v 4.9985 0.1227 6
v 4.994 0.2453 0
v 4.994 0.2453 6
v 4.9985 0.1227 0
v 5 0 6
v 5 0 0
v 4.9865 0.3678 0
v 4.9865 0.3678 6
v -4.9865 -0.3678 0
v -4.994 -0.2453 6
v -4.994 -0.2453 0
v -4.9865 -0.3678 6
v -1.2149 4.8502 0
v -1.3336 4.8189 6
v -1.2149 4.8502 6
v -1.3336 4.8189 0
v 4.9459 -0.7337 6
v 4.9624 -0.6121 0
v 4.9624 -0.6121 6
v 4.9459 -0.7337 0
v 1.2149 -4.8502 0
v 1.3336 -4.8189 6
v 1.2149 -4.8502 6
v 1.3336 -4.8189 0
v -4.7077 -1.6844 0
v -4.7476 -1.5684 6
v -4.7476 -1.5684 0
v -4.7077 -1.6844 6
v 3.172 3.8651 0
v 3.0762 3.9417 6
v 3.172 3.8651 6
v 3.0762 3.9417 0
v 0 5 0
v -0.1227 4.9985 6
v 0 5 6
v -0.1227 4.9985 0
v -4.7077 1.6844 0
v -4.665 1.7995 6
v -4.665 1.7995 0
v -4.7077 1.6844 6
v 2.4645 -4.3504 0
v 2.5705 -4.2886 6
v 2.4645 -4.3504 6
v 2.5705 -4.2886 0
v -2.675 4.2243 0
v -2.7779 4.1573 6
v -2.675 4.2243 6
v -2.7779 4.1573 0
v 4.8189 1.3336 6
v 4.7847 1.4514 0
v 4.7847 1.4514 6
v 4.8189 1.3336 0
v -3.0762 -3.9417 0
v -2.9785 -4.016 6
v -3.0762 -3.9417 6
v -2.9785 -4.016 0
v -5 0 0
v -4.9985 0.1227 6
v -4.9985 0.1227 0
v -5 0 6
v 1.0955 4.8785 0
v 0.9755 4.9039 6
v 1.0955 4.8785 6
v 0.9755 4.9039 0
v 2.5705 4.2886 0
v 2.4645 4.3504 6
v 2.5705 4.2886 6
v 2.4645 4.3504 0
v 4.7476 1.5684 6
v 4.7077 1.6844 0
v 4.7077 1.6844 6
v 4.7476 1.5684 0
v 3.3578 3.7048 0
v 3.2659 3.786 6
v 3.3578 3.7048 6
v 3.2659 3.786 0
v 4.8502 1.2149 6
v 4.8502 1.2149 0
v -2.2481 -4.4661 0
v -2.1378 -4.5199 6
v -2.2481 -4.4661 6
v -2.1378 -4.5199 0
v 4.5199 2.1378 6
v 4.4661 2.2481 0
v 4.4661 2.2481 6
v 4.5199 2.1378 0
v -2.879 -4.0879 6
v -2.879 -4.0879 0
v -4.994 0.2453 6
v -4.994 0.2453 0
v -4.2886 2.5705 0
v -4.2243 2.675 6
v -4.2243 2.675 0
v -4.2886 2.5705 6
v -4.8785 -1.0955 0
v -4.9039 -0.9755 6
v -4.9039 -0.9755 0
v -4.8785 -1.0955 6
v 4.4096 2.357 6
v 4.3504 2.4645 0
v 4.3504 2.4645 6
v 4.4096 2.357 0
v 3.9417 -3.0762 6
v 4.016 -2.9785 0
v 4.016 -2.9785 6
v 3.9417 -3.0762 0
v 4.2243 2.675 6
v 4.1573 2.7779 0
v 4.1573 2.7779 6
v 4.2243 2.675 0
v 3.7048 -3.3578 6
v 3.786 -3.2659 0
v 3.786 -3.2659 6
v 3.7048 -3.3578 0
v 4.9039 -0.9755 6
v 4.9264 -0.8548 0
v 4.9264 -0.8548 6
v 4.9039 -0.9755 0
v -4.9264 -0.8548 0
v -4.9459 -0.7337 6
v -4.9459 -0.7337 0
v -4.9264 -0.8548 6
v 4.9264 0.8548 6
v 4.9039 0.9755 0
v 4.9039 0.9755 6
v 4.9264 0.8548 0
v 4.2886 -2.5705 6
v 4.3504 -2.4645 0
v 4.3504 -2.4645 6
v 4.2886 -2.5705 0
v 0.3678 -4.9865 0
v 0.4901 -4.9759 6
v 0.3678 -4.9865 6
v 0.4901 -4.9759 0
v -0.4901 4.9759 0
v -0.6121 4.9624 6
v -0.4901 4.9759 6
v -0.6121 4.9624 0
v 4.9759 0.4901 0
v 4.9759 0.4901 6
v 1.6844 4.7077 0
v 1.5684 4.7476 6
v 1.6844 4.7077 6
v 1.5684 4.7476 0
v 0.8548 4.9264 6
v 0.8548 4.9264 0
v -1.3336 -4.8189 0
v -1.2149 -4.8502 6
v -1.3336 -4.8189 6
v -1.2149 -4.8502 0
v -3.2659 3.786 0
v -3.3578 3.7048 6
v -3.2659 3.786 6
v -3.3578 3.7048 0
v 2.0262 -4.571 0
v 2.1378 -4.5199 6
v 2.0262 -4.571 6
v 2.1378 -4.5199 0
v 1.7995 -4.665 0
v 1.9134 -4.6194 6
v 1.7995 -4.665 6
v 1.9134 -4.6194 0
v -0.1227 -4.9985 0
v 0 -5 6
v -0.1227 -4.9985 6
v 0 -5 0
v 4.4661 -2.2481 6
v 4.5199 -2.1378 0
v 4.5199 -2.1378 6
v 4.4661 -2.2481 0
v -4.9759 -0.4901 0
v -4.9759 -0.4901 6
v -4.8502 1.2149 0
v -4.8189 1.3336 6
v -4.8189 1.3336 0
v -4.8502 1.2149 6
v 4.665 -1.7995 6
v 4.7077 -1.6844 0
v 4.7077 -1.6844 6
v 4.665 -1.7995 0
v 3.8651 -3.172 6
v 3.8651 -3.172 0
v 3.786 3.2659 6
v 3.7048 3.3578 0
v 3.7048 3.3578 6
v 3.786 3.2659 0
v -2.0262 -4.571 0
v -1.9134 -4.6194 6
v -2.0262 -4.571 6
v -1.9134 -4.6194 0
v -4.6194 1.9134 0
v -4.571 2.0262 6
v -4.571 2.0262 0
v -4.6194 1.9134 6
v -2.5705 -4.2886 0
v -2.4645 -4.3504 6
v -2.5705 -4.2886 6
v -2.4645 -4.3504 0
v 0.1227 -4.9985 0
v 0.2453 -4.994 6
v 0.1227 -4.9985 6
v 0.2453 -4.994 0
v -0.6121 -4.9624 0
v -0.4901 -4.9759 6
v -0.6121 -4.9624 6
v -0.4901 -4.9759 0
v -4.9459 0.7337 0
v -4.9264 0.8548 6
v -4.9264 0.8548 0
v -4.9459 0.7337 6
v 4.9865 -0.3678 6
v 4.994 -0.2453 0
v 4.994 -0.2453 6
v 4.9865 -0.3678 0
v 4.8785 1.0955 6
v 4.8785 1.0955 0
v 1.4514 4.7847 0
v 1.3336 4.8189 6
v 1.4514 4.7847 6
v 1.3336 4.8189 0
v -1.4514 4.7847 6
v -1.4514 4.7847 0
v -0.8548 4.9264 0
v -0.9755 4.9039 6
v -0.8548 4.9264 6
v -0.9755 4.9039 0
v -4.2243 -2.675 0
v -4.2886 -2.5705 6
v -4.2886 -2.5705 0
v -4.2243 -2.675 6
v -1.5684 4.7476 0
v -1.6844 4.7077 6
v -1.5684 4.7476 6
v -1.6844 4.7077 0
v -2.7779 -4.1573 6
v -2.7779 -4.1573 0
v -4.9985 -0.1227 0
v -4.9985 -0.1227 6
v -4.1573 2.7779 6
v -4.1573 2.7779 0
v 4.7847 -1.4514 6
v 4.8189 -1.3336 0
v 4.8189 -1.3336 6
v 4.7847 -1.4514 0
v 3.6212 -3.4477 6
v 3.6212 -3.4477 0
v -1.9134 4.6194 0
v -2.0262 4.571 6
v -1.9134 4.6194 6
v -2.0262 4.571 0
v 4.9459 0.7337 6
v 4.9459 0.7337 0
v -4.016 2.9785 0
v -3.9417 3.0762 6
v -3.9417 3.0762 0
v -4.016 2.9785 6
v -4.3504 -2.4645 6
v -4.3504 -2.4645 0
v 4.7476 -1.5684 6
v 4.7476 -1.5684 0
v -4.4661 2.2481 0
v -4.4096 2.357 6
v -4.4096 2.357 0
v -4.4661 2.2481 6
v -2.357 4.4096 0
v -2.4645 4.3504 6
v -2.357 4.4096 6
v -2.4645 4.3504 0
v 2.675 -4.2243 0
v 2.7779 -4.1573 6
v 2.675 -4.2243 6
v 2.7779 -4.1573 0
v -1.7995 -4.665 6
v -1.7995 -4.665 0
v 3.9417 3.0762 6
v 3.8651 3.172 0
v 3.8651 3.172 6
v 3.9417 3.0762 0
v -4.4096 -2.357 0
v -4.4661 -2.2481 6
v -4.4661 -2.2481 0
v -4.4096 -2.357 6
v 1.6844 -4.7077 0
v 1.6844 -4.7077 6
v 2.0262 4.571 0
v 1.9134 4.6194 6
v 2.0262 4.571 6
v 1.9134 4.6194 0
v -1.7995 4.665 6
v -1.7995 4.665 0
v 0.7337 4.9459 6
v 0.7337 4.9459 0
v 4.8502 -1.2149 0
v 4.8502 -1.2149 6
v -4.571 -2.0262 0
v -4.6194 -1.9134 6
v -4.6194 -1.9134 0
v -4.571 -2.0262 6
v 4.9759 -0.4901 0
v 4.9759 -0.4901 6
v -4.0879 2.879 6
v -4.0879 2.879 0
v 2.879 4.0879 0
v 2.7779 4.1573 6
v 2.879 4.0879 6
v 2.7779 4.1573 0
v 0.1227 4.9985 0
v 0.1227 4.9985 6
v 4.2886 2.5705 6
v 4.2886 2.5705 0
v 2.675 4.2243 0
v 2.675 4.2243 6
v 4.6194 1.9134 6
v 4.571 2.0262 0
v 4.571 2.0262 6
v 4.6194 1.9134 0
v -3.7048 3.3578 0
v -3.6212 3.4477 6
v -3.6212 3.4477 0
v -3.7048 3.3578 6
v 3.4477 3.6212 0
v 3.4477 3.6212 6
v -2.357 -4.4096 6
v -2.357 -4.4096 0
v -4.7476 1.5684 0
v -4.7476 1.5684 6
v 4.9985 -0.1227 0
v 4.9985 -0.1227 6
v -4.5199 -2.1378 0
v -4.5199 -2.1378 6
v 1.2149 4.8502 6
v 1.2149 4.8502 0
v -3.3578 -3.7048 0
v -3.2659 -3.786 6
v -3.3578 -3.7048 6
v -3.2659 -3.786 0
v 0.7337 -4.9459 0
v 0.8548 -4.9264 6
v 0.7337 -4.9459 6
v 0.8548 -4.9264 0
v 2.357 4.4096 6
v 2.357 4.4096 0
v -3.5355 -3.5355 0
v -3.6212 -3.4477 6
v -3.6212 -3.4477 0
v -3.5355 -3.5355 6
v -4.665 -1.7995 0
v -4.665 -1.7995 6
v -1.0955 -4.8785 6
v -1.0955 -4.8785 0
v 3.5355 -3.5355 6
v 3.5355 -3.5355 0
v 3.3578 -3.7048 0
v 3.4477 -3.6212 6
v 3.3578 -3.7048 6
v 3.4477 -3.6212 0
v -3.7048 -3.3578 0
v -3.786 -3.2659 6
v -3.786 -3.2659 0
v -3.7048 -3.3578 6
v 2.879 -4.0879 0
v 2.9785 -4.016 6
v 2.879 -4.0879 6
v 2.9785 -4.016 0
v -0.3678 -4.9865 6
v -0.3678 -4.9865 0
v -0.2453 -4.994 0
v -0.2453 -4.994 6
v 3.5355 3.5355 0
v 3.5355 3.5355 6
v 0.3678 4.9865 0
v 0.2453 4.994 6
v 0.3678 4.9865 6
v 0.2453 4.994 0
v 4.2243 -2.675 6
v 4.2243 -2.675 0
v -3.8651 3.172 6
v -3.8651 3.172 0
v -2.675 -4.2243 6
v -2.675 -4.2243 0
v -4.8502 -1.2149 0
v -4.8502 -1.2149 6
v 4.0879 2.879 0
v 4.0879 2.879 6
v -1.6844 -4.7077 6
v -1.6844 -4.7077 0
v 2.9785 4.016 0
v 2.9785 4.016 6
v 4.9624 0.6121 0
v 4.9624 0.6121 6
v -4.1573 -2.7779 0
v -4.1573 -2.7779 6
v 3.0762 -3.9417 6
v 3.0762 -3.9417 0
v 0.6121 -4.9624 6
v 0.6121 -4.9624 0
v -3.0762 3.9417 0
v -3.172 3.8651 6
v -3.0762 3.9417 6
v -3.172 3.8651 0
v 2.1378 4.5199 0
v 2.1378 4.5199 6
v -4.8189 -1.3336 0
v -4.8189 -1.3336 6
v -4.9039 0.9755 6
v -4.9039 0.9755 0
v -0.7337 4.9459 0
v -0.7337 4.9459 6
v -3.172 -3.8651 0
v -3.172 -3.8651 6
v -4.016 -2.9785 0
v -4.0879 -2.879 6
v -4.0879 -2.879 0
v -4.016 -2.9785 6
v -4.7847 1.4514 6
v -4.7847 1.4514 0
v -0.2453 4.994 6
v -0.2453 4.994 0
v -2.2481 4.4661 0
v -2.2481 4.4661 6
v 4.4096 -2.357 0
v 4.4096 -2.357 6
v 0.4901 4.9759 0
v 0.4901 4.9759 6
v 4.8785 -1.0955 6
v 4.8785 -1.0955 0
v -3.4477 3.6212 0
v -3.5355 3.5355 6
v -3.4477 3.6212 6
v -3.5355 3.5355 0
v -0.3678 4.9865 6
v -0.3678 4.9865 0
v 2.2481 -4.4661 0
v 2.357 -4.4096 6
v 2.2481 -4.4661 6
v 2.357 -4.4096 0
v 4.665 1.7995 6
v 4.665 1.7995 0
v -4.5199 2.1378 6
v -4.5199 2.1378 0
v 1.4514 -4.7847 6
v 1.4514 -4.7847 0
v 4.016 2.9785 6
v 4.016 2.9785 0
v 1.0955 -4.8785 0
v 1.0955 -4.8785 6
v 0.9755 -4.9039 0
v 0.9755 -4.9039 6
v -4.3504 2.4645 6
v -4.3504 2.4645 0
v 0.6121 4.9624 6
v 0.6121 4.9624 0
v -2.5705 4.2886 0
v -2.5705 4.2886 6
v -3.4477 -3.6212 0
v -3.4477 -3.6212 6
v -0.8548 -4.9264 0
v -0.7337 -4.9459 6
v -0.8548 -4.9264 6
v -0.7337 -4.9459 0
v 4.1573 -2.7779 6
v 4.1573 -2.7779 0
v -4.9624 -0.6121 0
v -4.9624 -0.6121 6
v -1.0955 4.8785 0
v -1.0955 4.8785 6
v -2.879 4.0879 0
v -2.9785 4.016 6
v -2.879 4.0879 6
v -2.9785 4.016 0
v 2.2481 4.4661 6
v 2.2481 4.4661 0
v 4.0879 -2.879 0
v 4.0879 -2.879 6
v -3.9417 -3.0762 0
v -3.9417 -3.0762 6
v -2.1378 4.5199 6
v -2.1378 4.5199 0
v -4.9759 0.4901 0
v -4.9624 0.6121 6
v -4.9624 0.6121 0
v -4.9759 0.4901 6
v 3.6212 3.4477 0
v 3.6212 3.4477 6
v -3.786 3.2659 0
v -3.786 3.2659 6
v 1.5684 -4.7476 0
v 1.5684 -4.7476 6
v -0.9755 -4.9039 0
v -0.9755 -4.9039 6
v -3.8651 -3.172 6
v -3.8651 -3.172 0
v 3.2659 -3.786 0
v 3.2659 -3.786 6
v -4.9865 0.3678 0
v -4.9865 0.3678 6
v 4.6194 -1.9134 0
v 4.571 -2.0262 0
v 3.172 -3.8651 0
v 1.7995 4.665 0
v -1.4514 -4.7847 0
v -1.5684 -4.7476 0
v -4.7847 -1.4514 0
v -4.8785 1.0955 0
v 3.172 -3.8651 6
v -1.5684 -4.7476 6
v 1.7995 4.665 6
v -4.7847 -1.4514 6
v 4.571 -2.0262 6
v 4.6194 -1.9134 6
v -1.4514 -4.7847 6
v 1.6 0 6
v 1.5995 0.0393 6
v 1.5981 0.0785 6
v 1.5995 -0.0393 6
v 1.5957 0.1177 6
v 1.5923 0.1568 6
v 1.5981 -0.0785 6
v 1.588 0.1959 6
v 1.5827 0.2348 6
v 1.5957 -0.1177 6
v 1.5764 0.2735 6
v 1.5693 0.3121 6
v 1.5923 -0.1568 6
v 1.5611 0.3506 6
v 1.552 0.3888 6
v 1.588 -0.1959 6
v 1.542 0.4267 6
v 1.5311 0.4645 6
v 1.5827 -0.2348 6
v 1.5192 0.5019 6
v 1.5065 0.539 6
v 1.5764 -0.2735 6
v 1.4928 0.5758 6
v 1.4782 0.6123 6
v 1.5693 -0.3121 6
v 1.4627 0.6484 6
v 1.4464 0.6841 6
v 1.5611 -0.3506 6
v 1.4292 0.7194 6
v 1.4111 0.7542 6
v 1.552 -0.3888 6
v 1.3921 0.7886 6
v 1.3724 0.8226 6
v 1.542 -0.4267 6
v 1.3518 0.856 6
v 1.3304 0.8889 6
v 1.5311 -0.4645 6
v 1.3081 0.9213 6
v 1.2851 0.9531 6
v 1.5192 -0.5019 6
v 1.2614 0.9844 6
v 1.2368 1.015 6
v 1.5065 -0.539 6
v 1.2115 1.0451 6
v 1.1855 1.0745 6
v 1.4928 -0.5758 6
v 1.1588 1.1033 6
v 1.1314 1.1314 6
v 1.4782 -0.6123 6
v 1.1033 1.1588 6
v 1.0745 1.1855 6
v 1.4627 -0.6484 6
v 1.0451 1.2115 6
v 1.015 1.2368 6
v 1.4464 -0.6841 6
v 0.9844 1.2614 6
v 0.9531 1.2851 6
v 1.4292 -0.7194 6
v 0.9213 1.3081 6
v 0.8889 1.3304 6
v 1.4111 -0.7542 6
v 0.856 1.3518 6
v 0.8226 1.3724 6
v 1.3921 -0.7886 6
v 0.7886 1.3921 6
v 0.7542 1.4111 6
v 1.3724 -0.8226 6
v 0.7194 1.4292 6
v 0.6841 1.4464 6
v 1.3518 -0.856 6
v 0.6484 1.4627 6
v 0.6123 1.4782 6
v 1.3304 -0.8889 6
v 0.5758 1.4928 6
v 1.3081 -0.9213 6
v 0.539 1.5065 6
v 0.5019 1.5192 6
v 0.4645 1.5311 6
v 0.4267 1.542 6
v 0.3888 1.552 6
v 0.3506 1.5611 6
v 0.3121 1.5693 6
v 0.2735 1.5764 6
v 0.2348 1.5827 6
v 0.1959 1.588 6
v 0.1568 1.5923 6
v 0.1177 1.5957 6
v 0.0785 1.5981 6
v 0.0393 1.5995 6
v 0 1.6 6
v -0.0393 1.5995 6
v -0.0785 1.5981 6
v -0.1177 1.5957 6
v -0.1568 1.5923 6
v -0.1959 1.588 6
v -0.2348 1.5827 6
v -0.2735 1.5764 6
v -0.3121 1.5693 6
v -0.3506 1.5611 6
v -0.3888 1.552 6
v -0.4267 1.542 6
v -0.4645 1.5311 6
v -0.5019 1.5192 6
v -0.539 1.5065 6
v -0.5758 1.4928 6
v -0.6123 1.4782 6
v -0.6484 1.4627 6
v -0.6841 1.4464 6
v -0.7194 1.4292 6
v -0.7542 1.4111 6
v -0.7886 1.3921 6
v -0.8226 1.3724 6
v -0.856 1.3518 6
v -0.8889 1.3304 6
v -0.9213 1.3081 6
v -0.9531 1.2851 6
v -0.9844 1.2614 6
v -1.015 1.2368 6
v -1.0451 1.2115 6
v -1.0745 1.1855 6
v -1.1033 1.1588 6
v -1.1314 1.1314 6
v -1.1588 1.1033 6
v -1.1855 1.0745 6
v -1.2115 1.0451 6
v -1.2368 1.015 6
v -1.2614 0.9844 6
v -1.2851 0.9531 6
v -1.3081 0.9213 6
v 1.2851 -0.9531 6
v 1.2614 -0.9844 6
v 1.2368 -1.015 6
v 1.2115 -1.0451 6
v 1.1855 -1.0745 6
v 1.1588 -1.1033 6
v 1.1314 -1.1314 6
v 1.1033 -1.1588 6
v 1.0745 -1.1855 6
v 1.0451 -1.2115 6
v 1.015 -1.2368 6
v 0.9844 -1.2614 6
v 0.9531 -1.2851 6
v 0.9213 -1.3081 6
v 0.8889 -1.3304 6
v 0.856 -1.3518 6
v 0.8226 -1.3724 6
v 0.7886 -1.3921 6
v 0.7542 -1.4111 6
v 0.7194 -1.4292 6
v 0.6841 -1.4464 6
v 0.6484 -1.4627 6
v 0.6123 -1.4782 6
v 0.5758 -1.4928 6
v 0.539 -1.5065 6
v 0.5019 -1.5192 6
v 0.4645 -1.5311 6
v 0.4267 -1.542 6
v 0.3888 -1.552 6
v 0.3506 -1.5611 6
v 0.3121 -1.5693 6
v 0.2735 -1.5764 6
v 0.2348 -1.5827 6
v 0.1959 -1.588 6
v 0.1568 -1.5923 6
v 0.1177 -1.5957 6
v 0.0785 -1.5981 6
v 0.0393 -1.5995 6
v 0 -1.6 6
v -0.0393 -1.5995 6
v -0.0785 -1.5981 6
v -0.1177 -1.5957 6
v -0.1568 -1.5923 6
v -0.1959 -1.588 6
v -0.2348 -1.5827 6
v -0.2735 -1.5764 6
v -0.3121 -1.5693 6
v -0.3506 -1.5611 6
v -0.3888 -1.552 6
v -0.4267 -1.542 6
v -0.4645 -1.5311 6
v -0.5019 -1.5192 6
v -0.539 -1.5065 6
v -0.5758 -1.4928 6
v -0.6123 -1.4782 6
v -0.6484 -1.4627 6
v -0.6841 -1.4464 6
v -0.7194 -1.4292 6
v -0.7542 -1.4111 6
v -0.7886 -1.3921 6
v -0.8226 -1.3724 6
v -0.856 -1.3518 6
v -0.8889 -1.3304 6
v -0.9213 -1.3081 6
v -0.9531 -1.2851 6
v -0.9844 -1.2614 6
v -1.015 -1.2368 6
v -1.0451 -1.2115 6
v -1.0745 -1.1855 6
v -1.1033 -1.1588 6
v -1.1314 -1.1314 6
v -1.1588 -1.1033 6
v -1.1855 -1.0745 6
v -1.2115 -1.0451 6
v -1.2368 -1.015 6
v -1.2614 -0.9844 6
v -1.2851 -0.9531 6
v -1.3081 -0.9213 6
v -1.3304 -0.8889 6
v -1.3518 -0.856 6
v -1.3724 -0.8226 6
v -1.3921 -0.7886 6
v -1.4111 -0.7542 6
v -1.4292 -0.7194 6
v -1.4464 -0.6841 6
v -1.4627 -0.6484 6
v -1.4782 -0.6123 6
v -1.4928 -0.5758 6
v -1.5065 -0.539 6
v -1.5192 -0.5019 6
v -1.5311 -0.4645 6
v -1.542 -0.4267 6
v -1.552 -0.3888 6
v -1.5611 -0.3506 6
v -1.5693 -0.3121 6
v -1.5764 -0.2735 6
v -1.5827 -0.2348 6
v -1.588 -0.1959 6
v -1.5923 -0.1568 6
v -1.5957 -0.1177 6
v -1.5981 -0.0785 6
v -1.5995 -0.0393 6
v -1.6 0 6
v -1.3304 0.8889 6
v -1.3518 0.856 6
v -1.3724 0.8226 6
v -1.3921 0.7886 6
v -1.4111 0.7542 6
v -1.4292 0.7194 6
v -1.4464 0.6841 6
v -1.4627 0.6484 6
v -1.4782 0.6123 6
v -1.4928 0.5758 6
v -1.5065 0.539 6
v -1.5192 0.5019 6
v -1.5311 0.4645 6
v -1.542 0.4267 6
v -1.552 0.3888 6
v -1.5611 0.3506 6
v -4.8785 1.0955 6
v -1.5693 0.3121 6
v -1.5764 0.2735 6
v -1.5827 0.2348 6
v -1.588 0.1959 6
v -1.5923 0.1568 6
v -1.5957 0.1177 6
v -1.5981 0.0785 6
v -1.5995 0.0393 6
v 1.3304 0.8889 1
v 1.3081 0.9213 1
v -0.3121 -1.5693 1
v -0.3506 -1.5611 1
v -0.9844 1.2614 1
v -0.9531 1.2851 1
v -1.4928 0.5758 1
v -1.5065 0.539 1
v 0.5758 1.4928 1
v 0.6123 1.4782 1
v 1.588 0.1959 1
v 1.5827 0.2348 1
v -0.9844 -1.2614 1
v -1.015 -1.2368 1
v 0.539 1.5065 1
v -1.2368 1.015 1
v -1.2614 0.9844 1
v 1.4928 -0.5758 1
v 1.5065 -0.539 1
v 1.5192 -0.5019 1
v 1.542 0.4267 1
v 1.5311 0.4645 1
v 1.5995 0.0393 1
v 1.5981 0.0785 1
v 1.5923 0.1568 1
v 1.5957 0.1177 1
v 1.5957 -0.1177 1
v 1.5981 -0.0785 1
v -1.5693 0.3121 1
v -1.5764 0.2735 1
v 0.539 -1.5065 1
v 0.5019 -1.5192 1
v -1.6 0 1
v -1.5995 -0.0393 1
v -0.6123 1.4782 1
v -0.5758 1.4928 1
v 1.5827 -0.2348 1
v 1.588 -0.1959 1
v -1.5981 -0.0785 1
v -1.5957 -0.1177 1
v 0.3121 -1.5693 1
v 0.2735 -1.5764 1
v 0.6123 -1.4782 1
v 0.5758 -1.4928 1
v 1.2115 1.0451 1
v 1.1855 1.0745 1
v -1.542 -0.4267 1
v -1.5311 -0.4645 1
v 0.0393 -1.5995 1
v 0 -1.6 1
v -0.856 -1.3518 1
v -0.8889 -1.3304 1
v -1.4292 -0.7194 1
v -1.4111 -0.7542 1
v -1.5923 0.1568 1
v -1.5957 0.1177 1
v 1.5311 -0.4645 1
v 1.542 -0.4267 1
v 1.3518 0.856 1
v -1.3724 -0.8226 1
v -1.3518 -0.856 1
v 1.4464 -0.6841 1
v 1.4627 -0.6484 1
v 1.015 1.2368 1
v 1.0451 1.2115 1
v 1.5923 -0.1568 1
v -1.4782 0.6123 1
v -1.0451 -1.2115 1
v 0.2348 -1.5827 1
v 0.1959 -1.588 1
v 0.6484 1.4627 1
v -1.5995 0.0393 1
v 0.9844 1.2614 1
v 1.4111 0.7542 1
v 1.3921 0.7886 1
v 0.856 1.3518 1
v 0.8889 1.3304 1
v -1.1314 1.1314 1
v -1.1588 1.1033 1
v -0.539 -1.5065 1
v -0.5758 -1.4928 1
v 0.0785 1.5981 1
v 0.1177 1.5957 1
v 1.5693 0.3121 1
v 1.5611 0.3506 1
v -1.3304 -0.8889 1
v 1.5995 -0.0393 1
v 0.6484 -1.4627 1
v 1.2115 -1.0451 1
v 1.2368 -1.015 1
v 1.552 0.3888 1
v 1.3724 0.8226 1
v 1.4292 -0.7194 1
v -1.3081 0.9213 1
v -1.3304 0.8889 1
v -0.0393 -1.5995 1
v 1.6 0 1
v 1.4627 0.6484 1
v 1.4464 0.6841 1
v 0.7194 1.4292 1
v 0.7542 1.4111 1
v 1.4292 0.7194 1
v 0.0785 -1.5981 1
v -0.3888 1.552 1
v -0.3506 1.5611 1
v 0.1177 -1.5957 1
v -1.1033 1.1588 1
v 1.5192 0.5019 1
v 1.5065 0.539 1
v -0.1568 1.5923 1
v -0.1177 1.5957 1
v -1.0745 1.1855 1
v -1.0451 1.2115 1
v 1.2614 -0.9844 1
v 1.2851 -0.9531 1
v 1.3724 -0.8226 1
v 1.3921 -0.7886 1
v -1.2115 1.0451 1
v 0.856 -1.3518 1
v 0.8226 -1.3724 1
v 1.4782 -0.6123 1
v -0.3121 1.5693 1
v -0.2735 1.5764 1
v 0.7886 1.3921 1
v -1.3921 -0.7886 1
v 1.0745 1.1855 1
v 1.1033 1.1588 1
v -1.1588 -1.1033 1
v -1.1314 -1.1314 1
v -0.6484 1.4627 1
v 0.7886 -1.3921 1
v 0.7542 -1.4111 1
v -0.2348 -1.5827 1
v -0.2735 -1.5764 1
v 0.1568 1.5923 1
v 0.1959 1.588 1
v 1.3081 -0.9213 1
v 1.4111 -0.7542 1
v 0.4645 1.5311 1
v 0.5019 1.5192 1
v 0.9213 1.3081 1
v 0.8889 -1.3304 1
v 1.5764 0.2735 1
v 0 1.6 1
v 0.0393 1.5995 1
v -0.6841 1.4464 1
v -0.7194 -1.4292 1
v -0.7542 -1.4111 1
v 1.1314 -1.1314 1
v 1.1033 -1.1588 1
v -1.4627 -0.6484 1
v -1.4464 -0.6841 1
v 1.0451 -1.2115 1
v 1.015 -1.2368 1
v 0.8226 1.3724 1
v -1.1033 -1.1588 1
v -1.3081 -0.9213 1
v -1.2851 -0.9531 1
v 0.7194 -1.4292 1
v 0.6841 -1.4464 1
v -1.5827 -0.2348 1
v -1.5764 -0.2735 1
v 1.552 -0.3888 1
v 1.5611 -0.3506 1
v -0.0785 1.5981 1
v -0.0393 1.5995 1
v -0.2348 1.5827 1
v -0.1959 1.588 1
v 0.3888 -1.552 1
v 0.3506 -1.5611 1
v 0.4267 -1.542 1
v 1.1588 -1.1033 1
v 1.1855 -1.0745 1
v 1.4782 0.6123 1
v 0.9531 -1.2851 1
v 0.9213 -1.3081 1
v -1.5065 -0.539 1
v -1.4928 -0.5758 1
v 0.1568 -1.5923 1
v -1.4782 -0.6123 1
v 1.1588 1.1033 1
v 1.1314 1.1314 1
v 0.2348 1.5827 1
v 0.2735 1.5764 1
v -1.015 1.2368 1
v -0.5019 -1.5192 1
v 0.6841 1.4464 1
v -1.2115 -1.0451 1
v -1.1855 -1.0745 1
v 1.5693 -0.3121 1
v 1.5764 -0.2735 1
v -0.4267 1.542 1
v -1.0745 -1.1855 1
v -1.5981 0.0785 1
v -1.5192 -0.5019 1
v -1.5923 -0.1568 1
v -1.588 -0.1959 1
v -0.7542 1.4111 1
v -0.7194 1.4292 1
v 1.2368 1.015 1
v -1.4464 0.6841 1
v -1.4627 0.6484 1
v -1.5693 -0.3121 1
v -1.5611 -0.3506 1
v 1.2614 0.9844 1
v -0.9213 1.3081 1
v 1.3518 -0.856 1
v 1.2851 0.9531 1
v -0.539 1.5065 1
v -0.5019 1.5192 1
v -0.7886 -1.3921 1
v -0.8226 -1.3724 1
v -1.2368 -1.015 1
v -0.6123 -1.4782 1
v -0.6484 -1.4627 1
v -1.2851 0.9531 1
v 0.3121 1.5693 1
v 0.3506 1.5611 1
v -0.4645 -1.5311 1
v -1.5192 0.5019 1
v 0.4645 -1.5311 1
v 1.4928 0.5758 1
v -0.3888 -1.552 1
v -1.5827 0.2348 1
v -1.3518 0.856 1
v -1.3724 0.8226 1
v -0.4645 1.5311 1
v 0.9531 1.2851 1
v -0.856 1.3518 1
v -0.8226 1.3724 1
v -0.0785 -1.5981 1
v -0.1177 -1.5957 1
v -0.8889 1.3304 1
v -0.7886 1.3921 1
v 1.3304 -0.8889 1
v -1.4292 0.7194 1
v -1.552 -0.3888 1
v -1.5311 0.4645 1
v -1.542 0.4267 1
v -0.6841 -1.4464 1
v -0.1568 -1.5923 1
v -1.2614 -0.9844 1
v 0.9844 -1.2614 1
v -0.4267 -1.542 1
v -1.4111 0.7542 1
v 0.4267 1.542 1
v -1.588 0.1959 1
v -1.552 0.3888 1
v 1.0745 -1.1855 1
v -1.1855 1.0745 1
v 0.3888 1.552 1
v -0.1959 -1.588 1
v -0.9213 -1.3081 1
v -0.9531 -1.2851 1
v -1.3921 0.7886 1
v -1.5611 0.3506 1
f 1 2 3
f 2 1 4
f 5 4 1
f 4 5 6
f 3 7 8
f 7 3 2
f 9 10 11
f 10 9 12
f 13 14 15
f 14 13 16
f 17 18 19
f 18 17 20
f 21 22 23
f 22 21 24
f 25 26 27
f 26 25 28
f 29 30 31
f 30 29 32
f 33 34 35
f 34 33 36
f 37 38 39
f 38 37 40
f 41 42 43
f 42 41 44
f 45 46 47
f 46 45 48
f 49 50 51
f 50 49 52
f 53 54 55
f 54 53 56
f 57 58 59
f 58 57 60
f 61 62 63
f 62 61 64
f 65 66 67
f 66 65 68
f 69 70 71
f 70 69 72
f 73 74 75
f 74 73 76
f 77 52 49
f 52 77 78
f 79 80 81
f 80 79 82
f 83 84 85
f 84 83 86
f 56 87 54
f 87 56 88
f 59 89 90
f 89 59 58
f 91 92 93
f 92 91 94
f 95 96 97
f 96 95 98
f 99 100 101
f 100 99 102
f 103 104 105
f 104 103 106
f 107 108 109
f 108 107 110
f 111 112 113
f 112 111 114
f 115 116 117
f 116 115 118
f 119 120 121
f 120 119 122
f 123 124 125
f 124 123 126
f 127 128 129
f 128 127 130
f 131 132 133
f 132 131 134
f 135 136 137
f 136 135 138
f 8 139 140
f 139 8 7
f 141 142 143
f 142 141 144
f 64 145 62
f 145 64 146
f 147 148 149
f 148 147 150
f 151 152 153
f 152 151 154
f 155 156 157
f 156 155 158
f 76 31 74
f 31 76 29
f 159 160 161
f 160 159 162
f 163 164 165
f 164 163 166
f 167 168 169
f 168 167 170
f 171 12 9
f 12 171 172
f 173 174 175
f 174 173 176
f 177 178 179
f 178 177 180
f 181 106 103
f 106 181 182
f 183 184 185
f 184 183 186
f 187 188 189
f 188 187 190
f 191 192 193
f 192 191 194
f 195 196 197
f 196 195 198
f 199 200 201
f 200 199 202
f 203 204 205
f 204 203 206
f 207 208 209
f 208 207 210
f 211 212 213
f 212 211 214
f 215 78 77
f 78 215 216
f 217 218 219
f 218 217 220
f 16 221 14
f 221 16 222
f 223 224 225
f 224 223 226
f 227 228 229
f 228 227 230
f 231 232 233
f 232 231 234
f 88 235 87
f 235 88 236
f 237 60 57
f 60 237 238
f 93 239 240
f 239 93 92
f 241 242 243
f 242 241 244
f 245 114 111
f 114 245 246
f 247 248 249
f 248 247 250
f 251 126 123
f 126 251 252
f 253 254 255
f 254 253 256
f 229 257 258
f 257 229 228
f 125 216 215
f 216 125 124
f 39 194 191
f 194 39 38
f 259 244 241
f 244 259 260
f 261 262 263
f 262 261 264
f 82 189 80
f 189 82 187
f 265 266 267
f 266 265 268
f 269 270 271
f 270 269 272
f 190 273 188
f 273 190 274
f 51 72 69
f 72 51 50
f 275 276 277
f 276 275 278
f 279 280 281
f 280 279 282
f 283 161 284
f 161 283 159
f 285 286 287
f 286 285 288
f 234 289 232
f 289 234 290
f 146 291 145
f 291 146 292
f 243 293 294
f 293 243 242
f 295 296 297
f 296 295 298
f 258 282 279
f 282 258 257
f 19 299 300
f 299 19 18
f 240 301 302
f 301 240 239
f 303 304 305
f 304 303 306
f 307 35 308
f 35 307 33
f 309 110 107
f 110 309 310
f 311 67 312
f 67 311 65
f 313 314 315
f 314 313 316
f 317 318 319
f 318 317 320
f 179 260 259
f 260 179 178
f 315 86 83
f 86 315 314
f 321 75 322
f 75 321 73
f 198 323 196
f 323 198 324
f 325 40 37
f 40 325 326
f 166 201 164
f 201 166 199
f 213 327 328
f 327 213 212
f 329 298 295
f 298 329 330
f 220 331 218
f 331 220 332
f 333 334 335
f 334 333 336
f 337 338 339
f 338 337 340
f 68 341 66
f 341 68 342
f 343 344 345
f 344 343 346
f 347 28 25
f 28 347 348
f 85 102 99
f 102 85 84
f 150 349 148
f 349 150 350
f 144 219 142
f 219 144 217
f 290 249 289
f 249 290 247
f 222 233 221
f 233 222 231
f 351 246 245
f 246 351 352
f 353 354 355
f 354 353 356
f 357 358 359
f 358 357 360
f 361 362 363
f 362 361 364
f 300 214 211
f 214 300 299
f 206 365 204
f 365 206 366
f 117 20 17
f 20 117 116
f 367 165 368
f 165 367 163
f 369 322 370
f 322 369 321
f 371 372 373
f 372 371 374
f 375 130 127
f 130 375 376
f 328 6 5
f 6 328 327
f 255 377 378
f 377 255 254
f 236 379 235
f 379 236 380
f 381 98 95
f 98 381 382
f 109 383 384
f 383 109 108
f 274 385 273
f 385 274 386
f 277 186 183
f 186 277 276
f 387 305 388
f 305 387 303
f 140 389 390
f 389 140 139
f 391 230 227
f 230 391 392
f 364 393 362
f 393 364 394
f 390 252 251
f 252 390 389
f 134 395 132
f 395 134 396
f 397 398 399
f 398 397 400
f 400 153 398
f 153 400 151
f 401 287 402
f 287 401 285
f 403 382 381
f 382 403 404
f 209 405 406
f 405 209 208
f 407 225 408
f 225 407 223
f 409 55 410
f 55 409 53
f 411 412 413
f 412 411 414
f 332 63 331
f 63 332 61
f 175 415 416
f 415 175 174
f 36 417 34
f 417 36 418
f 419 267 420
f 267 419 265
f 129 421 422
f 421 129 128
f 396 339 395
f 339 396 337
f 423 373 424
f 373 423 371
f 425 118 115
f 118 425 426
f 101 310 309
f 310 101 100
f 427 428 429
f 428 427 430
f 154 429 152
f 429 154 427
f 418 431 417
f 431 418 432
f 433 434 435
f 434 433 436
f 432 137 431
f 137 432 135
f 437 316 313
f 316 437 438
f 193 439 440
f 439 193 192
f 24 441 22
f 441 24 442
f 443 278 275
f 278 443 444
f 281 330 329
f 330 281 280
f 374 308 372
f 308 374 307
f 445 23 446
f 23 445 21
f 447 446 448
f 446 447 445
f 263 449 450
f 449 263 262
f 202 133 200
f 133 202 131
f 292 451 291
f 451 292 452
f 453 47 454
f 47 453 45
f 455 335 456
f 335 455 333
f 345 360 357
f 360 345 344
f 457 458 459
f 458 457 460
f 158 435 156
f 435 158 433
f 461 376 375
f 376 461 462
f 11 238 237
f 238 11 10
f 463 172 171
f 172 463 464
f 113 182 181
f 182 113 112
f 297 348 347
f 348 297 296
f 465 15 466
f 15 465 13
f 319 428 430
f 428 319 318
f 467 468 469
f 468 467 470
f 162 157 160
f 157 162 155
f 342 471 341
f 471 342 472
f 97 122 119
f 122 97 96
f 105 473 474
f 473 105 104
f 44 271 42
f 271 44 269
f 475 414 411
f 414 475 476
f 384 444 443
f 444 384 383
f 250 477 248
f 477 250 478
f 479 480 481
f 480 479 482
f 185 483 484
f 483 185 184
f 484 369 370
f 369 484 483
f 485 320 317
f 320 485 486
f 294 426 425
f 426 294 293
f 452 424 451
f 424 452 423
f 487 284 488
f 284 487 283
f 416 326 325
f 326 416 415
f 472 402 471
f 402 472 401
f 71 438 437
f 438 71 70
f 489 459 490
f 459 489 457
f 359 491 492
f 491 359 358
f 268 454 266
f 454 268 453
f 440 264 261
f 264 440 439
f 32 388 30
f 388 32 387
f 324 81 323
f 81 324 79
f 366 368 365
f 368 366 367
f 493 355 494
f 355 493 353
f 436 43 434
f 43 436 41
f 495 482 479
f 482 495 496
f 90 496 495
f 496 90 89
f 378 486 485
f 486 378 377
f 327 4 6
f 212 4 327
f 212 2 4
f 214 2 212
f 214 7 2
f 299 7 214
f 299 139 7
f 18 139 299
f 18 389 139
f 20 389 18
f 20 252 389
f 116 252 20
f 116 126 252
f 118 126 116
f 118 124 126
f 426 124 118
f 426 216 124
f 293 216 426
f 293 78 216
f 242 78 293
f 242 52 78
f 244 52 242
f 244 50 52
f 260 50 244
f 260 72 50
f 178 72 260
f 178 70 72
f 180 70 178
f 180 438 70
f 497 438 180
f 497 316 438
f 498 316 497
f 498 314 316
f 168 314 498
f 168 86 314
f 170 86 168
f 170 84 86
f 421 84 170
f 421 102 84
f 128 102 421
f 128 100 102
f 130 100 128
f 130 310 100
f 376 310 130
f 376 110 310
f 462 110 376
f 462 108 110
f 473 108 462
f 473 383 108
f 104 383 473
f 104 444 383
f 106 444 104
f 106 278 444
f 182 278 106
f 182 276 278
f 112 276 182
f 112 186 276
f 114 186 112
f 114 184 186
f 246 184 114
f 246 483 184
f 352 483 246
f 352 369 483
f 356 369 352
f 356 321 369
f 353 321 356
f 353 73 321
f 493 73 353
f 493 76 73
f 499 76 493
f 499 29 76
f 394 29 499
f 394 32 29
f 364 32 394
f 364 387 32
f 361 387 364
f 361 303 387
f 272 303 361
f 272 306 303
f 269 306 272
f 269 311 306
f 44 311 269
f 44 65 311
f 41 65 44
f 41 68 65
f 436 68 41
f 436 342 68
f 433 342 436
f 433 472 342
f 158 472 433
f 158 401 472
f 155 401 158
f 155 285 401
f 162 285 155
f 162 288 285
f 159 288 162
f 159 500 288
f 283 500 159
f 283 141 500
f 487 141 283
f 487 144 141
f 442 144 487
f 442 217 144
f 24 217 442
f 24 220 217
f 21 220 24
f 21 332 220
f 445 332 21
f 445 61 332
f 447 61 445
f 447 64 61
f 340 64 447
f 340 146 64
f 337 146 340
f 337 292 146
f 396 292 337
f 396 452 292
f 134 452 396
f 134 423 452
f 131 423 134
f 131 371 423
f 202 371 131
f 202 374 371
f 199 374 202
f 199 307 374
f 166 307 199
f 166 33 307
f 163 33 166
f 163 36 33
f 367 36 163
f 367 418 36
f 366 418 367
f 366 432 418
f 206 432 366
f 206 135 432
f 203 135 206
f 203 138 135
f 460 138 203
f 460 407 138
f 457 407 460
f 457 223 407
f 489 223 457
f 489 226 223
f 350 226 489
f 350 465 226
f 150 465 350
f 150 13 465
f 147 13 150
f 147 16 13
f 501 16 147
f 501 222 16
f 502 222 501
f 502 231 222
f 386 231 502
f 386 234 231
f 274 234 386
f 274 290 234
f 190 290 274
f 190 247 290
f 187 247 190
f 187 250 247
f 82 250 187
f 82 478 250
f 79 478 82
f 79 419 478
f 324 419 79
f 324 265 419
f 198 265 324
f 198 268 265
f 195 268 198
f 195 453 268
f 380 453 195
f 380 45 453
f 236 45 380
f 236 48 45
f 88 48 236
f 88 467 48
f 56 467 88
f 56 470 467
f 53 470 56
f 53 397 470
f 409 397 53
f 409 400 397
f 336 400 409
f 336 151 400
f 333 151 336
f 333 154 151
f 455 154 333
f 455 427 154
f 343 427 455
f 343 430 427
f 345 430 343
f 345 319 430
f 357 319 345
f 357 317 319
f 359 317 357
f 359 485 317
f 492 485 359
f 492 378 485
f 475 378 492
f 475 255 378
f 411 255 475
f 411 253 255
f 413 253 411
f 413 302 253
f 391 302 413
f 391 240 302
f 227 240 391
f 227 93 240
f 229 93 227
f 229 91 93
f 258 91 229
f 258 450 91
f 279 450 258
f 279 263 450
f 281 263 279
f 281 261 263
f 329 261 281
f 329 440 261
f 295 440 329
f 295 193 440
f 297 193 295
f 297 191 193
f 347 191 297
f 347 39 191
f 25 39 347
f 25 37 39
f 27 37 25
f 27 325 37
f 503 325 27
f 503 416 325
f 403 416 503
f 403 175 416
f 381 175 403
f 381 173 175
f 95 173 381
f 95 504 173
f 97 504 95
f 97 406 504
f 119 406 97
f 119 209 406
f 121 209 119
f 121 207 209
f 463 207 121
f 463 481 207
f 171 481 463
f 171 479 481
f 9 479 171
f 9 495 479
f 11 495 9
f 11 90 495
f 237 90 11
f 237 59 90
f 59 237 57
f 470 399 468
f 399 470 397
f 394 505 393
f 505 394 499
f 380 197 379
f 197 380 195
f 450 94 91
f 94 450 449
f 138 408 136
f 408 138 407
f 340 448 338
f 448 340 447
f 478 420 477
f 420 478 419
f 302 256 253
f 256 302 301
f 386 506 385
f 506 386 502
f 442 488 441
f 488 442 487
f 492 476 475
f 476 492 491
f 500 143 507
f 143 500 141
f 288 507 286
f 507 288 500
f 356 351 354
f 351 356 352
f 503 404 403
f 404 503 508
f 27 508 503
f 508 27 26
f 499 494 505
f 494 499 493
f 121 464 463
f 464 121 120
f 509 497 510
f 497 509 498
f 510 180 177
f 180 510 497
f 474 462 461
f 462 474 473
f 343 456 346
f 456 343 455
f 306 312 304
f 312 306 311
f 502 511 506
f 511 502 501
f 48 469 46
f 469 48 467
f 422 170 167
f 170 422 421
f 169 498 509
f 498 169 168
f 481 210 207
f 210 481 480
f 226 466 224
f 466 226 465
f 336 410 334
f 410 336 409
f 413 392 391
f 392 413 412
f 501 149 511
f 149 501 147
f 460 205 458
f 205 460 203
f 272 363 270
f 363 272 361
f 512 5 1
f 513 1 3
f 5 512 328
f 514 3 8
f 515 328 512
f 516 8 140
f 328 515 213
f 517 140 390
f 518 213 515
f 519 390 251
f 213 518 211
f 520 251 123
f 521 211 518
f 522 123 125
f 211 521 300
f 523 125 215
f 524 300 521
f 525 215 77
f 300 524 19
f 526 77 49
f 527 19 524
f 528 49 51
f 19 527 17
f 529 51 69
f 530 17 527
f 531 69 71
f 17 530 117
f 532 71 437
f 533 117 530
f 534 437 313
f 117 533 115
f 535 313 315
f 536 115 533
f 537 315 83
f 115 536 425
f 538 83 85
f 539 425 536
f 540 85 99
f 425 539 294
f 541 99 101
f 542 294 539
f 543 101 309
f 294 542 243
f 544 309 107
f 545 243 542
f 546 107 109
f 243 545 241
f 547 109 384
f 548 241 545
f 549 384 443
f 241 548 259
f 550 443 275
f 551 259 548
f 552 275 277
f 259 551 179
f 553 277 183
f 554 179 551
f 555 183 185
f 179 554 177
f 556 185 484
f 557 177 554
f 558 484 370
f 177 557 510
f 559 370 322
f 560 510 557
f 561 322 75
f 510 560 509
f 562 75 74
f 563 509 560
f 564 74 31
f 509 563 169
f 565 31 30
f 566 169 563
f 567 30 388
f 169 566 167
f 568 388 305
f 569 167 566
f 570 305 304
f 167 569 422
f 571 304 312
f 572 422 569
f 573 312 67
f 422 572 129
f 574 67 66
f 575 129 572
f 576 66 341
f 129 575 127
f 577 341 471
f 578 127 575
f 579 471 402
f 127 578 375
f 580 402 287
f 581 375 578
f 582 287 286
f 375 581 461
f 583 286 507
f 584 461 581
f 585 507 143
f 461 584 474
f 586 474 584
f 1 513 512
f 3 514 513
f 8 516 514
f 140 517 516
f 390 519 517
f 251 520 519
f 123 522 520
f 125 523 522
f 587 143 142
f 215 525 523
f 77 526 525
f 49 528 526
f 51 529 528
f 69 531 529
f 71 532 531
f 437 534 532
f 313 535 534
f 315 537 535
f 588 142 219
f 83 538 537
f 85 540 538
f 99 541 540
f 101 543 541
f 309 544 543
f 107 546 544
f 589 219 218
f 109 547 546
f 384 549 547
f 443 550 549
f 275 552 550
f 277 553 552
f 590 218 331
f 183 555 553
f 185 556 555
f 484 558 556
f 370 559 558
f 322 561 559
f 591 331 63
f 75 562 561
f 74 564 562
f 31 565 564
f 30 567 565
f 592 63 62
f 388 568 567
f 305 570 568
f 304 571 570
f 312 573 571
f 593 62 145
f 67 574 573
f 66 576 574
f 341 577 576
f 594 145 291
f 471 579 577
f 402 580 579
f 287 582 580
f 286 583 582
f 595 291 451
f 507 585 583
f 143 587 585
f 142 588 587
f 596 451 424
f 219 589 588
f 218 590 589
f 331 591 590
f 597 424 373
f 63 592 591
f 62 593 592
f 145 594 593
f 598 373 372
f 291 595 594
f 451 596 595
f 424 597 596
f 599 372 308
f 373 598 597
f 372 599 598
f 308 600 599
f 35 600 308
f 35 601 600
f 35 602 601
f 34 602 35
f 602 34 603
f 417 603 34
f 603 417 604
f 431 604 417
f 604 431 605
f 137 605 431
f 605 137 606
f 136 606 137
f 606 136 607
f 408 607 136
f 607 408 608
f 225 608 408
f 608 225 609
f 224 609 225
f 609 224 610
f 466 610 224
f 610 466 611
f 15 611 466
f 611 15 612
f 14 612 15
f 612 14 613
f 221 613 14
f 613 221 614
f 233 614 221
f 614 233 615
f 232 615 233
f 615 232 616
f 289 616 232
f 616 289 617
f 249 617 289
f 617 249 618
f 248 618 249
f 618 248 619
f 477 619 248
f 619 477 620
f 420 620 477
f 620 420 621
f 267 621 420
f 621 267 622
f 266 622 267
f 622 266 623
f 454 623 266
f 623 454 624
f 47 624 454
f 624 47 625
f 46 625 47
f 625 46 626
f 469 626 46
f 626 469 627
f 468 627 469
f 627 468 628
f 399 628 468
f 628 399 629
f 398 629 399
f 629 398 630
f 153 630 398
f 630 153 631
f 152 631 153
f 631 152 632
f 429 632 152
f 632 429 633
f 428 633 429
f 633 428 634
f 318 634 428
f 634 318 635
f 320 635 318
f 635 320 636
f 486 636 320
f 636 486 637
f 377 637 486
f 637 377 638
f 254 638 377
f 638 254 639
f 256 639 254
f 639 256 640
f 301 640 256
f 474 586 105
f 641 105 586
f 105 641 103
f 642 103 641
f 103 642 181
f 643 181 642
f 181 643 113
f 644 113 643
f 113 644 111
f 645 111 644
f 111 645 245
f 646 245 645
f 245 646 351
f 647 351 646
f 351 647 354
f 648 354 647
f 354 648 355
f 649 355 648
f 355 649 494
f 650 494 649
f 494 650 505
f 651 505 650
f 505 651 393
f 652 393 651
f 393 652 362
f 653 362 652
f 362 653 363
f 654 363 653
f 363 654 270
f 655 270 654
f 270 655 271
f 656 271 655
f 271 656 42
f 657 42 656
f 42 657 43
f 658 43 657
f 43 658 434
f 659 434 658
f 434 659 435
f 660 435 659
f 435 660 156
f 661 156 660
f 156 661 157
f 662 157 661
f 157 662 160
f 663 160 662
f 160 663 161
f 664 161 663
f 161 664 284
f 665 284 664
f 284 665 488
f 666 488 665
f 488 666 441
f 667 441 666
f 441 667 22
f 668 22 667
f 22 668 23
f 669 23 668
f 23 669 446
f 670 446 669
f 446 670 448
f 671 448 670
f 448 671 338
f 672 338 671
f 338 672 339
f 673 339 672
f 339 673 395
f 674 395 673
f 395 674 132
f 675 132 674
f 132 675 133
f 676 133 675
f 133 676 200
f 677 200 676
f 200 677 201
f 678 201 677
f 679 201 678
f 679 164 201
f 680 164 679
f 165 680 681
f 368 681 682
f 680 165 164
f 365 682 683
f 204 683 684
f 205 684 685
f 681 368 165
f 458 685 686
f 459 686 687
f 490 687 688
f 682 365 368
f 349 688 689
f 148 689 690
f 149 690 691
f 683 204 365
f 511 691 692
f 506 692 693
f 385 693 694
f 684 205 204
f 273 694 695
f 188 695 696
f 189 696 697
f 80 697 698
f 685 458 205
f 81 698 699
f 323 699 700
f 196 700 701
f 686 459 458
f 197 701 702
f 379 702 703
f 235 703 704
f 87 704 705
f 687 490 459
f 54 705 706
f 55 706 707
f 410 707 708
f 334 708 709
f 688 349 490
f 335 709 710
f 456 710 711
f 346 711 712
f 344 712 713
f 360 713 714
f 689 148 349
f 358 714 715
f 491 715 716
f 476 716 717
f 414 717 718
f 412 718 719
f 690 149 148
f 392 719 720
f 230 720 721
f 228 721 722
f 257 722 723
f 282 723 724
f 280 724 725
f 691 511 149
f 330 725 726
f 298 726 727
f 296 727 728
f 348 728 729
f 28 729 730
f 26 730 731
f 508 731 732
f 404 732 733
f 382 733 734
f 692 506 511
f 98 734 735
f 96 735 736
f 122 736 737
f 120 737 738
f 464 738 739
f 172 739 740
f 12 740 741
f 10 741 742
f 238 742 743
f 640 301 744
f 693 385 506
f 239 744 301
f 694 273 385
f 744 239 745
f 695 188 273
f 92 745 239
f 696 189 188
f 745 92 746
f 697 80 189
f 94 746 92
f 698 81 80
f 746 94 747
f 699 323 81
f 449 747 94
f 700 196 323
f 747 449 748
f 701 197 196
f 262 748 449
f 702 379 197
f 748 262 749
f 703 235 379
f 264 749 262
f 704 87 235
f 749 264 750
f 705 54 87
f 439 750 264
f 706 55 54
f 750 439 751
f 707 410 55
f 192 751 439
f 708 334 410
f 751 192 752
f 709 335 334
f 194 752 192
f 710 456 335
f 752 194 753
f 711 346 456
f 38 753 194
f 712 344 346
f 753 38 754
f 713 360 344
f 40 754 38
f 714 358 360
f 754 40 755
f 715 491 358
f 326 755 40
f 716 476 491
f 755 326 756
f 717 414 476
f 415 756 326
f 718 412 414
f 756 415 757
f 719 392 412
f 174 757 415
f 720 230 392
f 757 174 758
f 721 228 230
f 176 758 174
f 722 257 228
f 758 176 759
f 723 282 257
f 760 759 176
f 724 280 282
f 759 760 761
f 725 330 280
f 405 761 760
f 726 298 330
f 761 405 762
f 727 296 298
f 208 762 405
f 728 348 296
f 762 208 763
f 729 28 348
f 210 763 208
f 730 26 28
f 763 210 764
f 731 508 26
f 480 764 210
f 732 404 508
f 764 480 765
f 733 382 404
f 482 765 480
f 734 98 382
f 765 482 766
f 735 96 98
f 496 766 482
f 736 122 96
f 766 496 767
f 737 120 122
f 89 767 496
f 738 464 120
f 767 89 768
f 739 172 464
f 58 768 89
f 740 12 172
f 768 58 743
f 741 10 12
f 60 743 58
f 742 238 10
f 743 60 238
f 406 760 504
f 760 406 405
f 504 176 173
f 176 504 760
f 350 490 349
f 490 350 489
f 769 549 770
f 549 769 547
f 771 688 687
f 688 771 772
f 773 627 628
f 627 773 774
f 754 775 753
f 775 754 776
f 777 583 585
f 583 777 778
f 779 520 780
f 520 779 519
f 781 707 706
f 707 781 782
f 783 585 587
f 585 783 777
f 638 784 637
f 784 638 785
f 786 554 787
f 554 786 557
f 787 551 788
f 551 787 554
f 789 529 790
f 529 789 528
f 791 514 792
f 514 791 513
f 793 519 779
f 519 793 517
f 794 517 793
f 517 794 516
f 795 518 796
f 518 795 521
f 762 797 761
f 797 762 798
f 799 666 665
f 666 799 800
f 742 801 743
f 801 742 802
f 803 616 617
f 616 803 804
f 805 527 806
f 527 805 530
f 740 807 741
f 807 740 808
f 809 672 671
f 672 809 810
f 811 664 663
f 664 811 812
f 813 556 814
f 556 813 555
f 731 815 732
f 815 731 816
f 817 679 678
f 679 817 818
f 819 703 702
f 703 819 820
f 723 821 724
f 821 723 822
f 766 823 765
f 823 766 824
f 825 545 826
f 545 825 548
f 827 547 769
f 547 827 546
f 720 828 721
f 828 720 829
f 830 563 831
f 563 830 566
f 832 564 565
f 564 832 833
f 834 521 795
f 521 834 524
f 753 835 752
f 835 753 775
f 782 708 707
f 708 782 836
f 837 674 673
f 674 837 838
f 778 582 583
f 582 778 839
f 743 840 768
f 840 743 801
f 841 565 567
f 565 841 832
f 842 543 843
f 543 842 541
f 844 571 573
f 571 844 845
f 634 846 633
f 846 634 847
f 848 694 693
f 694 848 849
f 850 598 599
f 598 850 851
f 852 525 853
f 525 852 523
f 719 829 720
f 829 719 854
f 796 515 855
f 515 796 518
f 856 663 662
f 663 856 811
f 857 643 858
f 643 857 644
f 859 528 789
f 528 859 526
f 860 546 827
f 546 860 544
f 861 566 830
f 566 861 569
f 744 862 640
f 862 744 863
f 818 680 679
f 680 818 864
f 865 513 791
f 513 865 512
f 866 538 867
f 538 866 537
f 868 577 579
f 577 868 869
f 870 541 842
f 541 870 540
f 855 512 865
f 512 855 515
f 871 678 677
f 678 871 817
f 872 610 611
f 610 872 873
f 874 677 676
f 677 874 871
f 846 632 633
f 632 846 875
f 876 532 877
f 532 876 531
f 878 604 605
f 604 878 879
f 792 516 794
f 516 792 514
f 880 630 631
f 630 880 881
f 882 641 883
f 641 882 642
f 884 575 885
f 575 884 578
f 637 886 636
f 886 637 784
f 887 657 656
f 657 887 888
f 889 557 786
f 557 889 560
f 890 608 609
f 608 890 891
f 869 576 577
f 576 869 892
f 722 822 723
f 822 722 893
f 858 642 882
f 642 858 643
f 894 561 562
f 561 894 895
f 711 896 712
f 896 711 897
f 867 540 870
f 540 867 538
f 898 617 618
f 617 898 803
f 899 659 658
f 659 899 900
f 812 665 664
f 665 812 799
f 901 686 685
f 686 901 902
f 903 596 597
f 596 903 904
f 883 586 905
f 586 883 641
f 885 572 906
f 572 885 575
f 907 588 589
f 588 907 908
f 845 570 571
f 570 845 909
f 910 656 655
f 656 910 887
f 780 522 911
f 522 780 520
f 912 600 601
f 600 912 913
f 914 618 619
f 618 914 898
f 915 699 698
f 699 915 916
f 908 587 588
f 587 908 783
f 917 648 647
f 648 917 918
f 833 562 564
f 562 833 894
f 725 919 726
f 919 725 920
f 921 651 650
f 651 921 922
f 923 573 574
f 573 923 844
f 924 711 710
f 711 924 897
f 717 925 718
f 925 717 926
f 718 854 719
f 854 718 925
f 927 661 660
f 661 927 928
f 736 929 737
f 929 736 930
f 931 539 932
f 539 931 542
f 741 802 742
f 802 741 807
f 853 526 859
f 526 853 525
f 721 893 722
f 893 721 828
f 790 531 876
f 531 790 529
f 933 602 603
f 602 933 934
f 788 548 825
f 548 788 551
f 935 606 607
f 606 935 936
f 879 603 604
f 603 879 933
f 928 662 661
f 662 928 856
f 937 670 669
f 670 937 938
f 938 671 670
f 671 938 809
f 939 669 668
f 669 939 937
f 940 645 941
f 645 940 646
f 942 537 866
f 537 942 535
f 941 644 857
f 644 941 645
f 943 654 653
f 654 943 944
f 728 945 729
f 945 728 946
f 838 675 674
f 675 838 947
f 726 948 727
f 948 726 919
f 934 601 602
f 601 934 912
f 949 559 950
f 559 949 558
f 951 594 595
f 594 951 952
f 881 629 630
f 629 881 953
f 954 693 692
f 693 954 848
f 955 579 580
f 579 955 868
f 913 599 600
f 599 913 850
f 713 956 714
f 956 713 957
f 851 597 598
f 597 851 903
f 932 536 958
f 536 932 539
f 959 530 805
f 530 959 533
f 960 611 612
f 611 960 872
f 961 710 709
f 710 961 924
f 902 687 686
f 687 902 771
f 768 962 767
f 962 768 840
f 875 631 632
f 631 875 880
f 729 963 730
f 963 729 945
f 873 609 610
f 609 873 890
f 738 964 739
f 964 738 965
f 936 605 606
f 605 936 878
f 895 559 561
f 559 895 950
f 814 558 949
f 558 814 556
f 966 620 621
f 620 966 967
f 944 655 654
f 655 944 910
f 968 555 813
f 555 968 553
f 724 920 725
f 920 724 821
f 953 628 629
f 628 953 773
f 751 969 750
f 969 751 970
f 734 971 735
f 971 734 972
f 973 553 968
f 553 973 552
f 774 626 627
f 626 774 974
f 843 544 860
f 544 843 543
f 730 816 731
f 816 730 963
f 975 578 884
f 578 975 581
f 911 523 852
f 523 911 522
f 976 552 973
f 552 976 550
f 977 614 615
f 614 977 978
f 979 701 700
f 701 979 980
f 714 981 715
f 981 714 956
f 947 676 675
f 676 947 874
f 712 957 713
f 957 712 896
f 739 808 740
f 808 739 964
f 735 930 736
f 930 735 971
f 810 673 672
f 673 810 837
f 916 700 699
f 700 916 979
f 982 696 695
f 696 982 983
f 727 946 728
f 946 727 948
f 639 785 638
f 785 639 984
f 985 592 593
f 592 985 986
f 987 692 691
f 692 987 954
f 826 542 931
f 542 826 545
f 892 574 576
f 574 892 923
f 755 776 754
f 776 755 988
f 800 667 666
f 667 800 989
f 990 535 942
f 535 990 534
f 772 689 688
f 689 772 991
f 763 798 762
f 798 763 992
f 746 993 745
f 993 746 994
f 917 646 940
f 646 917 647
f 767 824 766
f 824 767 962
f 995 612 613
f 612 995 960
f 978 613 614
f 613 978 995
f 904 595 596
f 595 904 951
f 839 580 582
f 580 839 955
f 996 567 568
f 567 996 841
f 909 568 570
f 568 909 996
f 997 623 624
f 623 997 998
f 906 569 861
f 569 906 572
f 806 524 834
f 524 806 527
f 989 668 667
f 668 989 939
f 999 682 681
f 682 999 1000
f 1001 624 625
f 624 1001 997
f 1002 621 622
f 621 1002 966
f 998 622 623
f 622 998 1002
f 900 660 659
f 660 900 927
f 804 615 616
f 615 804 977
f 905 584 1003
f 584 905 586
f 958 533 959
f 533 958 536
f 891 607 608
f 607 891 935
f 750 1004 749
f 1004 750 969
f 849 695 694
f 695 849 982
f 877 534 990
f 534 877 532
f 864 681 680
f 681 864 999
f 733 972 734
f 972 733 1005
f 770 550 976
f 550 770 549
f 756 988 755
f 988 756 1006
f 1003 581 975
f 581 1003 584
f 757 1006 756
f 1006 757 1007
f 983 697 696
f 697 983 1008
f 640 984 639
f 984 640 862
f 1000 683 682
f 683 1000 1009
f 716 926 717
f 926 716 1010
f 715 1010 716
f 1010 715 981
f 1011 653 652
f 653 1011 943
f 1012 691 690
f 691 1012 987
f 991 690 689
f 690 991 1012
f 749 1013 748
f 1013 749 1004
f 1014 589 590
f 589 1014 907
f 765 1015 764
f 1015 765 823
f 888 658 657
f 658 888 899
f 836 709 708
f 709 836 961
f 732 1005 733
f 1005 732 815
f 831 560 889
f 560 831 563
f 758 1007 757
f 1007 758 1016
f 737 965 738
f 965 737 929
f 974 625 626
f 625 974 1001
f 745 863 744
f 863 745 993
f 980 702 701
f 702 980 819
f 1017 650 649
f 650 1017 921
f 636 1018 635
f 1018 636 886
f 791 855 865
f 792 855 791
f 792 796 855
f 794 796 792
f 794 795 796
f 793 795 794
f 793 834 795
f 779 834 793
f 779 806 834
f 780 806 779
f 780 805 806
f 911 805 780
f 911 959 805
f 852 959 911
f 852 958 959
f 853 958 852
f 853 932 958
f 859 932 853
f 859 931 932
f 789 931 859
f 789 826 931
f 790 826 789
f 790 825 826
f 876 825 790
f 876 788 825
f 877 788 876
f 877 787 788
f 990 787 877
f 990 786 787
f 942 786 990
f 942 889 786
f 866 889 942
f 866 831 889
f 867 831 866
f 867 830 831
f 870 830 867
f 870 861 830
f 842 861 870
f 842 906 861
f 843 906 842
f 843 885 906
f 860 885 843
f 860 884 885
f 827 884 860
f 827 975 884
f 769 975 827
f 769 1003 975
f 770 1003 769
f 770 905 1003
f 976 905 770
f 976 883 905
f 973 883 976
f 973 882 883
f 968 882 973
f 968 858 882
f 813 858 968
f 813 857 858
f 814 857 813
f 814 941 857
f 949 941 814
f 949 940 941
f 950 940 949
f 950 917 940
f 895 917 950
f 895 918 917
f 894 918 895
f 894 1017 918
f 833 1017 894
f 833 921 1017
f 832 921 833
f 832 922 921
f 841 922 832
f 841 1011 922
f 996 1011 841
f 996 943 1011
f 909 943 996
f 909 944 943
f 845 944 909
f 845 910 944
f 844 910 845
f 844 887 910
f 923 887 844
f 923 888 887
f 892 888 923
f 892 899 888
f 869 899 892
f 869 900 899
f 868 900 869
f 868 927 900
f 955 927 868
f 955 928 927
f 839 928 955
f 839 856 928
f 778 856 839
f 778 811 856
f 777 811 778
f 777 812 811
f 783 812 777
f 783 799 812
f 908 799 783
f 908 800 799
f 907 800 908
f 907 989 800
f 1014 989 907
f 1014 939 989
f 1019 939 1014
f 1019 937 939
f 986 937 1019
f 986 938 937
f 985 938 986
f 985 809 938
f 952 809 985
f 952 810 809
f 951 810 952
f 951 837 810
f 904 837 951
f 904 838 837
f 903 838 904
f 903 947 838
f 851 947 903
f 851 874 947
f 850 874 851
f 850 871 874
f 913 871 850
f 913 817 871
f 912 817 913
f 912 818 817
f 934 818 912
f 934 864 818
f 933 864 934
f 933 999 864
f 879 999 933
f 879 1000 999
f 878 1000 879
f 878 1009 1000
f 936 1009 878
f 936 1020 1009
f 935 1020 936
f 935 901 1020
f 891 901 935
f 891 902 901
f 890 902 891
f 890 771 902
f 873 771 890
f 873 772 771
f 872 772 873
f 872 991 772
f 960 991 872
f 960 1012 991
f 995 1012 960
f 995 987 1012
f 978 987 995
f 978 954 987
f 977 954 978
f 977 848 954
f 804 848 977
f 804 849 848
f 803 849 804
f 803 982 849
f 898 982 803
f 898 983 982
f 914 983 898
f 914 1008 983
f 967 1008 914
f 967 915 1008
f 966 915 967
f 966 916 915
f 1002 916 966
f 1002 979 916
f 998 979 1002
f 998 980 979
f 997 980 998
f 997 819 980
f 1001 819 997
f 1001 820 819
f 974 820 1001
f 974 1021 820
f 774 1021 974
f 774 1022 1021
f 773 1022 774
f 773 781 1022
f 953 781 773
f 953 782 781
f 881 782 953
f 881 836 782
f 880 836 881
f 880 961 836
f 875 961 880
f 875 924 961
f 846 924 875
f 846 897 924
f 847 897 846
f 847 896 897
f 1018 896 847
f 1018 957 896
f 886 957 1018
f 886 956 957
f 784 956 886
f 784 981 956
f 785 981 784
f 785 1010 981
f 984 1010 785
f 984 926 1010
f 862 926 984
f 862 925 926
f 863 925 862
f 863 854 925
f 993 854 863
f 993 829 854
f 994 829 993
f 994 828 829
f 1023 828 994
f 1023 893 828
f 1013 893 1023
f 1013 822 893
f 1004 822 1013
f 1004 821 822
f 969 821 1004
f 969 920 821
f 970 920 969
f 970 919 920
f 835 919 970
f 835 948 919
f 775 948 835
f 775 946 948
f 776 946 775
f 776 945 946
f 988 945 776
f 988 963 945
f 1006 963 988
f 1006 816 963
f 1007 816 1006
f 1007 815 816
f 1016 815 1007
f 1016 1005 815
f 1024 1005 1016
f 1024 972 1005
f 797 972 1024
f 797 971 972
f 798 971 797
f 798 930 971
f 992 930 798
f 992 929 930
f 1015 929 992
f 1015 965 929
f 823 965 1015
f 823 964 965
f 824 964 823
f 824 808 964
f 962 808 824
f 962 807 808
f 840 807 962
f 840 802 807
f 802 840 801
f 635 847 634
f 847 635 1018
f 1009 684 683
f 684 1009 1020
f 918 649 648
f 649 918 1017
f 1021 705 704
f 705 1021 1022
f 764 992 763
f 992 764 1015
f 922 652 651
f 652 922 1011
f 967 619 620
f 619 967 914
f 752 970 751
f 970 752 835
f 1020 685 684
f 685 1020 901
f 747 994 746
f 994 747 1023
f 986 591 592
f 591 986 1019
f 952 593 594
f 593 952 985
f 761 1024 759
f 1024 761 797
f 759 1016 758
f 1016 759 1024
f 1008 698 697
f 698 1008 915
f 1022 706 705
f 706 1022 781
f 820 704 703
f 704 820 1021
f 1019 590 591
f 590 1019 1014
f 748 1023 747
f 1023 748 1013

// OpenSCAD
$fn=256;

difference() {
cylinder(d=10,h=6);
translate([0,0,1]) cylinder(d=3.2, h=6);
} 
 
